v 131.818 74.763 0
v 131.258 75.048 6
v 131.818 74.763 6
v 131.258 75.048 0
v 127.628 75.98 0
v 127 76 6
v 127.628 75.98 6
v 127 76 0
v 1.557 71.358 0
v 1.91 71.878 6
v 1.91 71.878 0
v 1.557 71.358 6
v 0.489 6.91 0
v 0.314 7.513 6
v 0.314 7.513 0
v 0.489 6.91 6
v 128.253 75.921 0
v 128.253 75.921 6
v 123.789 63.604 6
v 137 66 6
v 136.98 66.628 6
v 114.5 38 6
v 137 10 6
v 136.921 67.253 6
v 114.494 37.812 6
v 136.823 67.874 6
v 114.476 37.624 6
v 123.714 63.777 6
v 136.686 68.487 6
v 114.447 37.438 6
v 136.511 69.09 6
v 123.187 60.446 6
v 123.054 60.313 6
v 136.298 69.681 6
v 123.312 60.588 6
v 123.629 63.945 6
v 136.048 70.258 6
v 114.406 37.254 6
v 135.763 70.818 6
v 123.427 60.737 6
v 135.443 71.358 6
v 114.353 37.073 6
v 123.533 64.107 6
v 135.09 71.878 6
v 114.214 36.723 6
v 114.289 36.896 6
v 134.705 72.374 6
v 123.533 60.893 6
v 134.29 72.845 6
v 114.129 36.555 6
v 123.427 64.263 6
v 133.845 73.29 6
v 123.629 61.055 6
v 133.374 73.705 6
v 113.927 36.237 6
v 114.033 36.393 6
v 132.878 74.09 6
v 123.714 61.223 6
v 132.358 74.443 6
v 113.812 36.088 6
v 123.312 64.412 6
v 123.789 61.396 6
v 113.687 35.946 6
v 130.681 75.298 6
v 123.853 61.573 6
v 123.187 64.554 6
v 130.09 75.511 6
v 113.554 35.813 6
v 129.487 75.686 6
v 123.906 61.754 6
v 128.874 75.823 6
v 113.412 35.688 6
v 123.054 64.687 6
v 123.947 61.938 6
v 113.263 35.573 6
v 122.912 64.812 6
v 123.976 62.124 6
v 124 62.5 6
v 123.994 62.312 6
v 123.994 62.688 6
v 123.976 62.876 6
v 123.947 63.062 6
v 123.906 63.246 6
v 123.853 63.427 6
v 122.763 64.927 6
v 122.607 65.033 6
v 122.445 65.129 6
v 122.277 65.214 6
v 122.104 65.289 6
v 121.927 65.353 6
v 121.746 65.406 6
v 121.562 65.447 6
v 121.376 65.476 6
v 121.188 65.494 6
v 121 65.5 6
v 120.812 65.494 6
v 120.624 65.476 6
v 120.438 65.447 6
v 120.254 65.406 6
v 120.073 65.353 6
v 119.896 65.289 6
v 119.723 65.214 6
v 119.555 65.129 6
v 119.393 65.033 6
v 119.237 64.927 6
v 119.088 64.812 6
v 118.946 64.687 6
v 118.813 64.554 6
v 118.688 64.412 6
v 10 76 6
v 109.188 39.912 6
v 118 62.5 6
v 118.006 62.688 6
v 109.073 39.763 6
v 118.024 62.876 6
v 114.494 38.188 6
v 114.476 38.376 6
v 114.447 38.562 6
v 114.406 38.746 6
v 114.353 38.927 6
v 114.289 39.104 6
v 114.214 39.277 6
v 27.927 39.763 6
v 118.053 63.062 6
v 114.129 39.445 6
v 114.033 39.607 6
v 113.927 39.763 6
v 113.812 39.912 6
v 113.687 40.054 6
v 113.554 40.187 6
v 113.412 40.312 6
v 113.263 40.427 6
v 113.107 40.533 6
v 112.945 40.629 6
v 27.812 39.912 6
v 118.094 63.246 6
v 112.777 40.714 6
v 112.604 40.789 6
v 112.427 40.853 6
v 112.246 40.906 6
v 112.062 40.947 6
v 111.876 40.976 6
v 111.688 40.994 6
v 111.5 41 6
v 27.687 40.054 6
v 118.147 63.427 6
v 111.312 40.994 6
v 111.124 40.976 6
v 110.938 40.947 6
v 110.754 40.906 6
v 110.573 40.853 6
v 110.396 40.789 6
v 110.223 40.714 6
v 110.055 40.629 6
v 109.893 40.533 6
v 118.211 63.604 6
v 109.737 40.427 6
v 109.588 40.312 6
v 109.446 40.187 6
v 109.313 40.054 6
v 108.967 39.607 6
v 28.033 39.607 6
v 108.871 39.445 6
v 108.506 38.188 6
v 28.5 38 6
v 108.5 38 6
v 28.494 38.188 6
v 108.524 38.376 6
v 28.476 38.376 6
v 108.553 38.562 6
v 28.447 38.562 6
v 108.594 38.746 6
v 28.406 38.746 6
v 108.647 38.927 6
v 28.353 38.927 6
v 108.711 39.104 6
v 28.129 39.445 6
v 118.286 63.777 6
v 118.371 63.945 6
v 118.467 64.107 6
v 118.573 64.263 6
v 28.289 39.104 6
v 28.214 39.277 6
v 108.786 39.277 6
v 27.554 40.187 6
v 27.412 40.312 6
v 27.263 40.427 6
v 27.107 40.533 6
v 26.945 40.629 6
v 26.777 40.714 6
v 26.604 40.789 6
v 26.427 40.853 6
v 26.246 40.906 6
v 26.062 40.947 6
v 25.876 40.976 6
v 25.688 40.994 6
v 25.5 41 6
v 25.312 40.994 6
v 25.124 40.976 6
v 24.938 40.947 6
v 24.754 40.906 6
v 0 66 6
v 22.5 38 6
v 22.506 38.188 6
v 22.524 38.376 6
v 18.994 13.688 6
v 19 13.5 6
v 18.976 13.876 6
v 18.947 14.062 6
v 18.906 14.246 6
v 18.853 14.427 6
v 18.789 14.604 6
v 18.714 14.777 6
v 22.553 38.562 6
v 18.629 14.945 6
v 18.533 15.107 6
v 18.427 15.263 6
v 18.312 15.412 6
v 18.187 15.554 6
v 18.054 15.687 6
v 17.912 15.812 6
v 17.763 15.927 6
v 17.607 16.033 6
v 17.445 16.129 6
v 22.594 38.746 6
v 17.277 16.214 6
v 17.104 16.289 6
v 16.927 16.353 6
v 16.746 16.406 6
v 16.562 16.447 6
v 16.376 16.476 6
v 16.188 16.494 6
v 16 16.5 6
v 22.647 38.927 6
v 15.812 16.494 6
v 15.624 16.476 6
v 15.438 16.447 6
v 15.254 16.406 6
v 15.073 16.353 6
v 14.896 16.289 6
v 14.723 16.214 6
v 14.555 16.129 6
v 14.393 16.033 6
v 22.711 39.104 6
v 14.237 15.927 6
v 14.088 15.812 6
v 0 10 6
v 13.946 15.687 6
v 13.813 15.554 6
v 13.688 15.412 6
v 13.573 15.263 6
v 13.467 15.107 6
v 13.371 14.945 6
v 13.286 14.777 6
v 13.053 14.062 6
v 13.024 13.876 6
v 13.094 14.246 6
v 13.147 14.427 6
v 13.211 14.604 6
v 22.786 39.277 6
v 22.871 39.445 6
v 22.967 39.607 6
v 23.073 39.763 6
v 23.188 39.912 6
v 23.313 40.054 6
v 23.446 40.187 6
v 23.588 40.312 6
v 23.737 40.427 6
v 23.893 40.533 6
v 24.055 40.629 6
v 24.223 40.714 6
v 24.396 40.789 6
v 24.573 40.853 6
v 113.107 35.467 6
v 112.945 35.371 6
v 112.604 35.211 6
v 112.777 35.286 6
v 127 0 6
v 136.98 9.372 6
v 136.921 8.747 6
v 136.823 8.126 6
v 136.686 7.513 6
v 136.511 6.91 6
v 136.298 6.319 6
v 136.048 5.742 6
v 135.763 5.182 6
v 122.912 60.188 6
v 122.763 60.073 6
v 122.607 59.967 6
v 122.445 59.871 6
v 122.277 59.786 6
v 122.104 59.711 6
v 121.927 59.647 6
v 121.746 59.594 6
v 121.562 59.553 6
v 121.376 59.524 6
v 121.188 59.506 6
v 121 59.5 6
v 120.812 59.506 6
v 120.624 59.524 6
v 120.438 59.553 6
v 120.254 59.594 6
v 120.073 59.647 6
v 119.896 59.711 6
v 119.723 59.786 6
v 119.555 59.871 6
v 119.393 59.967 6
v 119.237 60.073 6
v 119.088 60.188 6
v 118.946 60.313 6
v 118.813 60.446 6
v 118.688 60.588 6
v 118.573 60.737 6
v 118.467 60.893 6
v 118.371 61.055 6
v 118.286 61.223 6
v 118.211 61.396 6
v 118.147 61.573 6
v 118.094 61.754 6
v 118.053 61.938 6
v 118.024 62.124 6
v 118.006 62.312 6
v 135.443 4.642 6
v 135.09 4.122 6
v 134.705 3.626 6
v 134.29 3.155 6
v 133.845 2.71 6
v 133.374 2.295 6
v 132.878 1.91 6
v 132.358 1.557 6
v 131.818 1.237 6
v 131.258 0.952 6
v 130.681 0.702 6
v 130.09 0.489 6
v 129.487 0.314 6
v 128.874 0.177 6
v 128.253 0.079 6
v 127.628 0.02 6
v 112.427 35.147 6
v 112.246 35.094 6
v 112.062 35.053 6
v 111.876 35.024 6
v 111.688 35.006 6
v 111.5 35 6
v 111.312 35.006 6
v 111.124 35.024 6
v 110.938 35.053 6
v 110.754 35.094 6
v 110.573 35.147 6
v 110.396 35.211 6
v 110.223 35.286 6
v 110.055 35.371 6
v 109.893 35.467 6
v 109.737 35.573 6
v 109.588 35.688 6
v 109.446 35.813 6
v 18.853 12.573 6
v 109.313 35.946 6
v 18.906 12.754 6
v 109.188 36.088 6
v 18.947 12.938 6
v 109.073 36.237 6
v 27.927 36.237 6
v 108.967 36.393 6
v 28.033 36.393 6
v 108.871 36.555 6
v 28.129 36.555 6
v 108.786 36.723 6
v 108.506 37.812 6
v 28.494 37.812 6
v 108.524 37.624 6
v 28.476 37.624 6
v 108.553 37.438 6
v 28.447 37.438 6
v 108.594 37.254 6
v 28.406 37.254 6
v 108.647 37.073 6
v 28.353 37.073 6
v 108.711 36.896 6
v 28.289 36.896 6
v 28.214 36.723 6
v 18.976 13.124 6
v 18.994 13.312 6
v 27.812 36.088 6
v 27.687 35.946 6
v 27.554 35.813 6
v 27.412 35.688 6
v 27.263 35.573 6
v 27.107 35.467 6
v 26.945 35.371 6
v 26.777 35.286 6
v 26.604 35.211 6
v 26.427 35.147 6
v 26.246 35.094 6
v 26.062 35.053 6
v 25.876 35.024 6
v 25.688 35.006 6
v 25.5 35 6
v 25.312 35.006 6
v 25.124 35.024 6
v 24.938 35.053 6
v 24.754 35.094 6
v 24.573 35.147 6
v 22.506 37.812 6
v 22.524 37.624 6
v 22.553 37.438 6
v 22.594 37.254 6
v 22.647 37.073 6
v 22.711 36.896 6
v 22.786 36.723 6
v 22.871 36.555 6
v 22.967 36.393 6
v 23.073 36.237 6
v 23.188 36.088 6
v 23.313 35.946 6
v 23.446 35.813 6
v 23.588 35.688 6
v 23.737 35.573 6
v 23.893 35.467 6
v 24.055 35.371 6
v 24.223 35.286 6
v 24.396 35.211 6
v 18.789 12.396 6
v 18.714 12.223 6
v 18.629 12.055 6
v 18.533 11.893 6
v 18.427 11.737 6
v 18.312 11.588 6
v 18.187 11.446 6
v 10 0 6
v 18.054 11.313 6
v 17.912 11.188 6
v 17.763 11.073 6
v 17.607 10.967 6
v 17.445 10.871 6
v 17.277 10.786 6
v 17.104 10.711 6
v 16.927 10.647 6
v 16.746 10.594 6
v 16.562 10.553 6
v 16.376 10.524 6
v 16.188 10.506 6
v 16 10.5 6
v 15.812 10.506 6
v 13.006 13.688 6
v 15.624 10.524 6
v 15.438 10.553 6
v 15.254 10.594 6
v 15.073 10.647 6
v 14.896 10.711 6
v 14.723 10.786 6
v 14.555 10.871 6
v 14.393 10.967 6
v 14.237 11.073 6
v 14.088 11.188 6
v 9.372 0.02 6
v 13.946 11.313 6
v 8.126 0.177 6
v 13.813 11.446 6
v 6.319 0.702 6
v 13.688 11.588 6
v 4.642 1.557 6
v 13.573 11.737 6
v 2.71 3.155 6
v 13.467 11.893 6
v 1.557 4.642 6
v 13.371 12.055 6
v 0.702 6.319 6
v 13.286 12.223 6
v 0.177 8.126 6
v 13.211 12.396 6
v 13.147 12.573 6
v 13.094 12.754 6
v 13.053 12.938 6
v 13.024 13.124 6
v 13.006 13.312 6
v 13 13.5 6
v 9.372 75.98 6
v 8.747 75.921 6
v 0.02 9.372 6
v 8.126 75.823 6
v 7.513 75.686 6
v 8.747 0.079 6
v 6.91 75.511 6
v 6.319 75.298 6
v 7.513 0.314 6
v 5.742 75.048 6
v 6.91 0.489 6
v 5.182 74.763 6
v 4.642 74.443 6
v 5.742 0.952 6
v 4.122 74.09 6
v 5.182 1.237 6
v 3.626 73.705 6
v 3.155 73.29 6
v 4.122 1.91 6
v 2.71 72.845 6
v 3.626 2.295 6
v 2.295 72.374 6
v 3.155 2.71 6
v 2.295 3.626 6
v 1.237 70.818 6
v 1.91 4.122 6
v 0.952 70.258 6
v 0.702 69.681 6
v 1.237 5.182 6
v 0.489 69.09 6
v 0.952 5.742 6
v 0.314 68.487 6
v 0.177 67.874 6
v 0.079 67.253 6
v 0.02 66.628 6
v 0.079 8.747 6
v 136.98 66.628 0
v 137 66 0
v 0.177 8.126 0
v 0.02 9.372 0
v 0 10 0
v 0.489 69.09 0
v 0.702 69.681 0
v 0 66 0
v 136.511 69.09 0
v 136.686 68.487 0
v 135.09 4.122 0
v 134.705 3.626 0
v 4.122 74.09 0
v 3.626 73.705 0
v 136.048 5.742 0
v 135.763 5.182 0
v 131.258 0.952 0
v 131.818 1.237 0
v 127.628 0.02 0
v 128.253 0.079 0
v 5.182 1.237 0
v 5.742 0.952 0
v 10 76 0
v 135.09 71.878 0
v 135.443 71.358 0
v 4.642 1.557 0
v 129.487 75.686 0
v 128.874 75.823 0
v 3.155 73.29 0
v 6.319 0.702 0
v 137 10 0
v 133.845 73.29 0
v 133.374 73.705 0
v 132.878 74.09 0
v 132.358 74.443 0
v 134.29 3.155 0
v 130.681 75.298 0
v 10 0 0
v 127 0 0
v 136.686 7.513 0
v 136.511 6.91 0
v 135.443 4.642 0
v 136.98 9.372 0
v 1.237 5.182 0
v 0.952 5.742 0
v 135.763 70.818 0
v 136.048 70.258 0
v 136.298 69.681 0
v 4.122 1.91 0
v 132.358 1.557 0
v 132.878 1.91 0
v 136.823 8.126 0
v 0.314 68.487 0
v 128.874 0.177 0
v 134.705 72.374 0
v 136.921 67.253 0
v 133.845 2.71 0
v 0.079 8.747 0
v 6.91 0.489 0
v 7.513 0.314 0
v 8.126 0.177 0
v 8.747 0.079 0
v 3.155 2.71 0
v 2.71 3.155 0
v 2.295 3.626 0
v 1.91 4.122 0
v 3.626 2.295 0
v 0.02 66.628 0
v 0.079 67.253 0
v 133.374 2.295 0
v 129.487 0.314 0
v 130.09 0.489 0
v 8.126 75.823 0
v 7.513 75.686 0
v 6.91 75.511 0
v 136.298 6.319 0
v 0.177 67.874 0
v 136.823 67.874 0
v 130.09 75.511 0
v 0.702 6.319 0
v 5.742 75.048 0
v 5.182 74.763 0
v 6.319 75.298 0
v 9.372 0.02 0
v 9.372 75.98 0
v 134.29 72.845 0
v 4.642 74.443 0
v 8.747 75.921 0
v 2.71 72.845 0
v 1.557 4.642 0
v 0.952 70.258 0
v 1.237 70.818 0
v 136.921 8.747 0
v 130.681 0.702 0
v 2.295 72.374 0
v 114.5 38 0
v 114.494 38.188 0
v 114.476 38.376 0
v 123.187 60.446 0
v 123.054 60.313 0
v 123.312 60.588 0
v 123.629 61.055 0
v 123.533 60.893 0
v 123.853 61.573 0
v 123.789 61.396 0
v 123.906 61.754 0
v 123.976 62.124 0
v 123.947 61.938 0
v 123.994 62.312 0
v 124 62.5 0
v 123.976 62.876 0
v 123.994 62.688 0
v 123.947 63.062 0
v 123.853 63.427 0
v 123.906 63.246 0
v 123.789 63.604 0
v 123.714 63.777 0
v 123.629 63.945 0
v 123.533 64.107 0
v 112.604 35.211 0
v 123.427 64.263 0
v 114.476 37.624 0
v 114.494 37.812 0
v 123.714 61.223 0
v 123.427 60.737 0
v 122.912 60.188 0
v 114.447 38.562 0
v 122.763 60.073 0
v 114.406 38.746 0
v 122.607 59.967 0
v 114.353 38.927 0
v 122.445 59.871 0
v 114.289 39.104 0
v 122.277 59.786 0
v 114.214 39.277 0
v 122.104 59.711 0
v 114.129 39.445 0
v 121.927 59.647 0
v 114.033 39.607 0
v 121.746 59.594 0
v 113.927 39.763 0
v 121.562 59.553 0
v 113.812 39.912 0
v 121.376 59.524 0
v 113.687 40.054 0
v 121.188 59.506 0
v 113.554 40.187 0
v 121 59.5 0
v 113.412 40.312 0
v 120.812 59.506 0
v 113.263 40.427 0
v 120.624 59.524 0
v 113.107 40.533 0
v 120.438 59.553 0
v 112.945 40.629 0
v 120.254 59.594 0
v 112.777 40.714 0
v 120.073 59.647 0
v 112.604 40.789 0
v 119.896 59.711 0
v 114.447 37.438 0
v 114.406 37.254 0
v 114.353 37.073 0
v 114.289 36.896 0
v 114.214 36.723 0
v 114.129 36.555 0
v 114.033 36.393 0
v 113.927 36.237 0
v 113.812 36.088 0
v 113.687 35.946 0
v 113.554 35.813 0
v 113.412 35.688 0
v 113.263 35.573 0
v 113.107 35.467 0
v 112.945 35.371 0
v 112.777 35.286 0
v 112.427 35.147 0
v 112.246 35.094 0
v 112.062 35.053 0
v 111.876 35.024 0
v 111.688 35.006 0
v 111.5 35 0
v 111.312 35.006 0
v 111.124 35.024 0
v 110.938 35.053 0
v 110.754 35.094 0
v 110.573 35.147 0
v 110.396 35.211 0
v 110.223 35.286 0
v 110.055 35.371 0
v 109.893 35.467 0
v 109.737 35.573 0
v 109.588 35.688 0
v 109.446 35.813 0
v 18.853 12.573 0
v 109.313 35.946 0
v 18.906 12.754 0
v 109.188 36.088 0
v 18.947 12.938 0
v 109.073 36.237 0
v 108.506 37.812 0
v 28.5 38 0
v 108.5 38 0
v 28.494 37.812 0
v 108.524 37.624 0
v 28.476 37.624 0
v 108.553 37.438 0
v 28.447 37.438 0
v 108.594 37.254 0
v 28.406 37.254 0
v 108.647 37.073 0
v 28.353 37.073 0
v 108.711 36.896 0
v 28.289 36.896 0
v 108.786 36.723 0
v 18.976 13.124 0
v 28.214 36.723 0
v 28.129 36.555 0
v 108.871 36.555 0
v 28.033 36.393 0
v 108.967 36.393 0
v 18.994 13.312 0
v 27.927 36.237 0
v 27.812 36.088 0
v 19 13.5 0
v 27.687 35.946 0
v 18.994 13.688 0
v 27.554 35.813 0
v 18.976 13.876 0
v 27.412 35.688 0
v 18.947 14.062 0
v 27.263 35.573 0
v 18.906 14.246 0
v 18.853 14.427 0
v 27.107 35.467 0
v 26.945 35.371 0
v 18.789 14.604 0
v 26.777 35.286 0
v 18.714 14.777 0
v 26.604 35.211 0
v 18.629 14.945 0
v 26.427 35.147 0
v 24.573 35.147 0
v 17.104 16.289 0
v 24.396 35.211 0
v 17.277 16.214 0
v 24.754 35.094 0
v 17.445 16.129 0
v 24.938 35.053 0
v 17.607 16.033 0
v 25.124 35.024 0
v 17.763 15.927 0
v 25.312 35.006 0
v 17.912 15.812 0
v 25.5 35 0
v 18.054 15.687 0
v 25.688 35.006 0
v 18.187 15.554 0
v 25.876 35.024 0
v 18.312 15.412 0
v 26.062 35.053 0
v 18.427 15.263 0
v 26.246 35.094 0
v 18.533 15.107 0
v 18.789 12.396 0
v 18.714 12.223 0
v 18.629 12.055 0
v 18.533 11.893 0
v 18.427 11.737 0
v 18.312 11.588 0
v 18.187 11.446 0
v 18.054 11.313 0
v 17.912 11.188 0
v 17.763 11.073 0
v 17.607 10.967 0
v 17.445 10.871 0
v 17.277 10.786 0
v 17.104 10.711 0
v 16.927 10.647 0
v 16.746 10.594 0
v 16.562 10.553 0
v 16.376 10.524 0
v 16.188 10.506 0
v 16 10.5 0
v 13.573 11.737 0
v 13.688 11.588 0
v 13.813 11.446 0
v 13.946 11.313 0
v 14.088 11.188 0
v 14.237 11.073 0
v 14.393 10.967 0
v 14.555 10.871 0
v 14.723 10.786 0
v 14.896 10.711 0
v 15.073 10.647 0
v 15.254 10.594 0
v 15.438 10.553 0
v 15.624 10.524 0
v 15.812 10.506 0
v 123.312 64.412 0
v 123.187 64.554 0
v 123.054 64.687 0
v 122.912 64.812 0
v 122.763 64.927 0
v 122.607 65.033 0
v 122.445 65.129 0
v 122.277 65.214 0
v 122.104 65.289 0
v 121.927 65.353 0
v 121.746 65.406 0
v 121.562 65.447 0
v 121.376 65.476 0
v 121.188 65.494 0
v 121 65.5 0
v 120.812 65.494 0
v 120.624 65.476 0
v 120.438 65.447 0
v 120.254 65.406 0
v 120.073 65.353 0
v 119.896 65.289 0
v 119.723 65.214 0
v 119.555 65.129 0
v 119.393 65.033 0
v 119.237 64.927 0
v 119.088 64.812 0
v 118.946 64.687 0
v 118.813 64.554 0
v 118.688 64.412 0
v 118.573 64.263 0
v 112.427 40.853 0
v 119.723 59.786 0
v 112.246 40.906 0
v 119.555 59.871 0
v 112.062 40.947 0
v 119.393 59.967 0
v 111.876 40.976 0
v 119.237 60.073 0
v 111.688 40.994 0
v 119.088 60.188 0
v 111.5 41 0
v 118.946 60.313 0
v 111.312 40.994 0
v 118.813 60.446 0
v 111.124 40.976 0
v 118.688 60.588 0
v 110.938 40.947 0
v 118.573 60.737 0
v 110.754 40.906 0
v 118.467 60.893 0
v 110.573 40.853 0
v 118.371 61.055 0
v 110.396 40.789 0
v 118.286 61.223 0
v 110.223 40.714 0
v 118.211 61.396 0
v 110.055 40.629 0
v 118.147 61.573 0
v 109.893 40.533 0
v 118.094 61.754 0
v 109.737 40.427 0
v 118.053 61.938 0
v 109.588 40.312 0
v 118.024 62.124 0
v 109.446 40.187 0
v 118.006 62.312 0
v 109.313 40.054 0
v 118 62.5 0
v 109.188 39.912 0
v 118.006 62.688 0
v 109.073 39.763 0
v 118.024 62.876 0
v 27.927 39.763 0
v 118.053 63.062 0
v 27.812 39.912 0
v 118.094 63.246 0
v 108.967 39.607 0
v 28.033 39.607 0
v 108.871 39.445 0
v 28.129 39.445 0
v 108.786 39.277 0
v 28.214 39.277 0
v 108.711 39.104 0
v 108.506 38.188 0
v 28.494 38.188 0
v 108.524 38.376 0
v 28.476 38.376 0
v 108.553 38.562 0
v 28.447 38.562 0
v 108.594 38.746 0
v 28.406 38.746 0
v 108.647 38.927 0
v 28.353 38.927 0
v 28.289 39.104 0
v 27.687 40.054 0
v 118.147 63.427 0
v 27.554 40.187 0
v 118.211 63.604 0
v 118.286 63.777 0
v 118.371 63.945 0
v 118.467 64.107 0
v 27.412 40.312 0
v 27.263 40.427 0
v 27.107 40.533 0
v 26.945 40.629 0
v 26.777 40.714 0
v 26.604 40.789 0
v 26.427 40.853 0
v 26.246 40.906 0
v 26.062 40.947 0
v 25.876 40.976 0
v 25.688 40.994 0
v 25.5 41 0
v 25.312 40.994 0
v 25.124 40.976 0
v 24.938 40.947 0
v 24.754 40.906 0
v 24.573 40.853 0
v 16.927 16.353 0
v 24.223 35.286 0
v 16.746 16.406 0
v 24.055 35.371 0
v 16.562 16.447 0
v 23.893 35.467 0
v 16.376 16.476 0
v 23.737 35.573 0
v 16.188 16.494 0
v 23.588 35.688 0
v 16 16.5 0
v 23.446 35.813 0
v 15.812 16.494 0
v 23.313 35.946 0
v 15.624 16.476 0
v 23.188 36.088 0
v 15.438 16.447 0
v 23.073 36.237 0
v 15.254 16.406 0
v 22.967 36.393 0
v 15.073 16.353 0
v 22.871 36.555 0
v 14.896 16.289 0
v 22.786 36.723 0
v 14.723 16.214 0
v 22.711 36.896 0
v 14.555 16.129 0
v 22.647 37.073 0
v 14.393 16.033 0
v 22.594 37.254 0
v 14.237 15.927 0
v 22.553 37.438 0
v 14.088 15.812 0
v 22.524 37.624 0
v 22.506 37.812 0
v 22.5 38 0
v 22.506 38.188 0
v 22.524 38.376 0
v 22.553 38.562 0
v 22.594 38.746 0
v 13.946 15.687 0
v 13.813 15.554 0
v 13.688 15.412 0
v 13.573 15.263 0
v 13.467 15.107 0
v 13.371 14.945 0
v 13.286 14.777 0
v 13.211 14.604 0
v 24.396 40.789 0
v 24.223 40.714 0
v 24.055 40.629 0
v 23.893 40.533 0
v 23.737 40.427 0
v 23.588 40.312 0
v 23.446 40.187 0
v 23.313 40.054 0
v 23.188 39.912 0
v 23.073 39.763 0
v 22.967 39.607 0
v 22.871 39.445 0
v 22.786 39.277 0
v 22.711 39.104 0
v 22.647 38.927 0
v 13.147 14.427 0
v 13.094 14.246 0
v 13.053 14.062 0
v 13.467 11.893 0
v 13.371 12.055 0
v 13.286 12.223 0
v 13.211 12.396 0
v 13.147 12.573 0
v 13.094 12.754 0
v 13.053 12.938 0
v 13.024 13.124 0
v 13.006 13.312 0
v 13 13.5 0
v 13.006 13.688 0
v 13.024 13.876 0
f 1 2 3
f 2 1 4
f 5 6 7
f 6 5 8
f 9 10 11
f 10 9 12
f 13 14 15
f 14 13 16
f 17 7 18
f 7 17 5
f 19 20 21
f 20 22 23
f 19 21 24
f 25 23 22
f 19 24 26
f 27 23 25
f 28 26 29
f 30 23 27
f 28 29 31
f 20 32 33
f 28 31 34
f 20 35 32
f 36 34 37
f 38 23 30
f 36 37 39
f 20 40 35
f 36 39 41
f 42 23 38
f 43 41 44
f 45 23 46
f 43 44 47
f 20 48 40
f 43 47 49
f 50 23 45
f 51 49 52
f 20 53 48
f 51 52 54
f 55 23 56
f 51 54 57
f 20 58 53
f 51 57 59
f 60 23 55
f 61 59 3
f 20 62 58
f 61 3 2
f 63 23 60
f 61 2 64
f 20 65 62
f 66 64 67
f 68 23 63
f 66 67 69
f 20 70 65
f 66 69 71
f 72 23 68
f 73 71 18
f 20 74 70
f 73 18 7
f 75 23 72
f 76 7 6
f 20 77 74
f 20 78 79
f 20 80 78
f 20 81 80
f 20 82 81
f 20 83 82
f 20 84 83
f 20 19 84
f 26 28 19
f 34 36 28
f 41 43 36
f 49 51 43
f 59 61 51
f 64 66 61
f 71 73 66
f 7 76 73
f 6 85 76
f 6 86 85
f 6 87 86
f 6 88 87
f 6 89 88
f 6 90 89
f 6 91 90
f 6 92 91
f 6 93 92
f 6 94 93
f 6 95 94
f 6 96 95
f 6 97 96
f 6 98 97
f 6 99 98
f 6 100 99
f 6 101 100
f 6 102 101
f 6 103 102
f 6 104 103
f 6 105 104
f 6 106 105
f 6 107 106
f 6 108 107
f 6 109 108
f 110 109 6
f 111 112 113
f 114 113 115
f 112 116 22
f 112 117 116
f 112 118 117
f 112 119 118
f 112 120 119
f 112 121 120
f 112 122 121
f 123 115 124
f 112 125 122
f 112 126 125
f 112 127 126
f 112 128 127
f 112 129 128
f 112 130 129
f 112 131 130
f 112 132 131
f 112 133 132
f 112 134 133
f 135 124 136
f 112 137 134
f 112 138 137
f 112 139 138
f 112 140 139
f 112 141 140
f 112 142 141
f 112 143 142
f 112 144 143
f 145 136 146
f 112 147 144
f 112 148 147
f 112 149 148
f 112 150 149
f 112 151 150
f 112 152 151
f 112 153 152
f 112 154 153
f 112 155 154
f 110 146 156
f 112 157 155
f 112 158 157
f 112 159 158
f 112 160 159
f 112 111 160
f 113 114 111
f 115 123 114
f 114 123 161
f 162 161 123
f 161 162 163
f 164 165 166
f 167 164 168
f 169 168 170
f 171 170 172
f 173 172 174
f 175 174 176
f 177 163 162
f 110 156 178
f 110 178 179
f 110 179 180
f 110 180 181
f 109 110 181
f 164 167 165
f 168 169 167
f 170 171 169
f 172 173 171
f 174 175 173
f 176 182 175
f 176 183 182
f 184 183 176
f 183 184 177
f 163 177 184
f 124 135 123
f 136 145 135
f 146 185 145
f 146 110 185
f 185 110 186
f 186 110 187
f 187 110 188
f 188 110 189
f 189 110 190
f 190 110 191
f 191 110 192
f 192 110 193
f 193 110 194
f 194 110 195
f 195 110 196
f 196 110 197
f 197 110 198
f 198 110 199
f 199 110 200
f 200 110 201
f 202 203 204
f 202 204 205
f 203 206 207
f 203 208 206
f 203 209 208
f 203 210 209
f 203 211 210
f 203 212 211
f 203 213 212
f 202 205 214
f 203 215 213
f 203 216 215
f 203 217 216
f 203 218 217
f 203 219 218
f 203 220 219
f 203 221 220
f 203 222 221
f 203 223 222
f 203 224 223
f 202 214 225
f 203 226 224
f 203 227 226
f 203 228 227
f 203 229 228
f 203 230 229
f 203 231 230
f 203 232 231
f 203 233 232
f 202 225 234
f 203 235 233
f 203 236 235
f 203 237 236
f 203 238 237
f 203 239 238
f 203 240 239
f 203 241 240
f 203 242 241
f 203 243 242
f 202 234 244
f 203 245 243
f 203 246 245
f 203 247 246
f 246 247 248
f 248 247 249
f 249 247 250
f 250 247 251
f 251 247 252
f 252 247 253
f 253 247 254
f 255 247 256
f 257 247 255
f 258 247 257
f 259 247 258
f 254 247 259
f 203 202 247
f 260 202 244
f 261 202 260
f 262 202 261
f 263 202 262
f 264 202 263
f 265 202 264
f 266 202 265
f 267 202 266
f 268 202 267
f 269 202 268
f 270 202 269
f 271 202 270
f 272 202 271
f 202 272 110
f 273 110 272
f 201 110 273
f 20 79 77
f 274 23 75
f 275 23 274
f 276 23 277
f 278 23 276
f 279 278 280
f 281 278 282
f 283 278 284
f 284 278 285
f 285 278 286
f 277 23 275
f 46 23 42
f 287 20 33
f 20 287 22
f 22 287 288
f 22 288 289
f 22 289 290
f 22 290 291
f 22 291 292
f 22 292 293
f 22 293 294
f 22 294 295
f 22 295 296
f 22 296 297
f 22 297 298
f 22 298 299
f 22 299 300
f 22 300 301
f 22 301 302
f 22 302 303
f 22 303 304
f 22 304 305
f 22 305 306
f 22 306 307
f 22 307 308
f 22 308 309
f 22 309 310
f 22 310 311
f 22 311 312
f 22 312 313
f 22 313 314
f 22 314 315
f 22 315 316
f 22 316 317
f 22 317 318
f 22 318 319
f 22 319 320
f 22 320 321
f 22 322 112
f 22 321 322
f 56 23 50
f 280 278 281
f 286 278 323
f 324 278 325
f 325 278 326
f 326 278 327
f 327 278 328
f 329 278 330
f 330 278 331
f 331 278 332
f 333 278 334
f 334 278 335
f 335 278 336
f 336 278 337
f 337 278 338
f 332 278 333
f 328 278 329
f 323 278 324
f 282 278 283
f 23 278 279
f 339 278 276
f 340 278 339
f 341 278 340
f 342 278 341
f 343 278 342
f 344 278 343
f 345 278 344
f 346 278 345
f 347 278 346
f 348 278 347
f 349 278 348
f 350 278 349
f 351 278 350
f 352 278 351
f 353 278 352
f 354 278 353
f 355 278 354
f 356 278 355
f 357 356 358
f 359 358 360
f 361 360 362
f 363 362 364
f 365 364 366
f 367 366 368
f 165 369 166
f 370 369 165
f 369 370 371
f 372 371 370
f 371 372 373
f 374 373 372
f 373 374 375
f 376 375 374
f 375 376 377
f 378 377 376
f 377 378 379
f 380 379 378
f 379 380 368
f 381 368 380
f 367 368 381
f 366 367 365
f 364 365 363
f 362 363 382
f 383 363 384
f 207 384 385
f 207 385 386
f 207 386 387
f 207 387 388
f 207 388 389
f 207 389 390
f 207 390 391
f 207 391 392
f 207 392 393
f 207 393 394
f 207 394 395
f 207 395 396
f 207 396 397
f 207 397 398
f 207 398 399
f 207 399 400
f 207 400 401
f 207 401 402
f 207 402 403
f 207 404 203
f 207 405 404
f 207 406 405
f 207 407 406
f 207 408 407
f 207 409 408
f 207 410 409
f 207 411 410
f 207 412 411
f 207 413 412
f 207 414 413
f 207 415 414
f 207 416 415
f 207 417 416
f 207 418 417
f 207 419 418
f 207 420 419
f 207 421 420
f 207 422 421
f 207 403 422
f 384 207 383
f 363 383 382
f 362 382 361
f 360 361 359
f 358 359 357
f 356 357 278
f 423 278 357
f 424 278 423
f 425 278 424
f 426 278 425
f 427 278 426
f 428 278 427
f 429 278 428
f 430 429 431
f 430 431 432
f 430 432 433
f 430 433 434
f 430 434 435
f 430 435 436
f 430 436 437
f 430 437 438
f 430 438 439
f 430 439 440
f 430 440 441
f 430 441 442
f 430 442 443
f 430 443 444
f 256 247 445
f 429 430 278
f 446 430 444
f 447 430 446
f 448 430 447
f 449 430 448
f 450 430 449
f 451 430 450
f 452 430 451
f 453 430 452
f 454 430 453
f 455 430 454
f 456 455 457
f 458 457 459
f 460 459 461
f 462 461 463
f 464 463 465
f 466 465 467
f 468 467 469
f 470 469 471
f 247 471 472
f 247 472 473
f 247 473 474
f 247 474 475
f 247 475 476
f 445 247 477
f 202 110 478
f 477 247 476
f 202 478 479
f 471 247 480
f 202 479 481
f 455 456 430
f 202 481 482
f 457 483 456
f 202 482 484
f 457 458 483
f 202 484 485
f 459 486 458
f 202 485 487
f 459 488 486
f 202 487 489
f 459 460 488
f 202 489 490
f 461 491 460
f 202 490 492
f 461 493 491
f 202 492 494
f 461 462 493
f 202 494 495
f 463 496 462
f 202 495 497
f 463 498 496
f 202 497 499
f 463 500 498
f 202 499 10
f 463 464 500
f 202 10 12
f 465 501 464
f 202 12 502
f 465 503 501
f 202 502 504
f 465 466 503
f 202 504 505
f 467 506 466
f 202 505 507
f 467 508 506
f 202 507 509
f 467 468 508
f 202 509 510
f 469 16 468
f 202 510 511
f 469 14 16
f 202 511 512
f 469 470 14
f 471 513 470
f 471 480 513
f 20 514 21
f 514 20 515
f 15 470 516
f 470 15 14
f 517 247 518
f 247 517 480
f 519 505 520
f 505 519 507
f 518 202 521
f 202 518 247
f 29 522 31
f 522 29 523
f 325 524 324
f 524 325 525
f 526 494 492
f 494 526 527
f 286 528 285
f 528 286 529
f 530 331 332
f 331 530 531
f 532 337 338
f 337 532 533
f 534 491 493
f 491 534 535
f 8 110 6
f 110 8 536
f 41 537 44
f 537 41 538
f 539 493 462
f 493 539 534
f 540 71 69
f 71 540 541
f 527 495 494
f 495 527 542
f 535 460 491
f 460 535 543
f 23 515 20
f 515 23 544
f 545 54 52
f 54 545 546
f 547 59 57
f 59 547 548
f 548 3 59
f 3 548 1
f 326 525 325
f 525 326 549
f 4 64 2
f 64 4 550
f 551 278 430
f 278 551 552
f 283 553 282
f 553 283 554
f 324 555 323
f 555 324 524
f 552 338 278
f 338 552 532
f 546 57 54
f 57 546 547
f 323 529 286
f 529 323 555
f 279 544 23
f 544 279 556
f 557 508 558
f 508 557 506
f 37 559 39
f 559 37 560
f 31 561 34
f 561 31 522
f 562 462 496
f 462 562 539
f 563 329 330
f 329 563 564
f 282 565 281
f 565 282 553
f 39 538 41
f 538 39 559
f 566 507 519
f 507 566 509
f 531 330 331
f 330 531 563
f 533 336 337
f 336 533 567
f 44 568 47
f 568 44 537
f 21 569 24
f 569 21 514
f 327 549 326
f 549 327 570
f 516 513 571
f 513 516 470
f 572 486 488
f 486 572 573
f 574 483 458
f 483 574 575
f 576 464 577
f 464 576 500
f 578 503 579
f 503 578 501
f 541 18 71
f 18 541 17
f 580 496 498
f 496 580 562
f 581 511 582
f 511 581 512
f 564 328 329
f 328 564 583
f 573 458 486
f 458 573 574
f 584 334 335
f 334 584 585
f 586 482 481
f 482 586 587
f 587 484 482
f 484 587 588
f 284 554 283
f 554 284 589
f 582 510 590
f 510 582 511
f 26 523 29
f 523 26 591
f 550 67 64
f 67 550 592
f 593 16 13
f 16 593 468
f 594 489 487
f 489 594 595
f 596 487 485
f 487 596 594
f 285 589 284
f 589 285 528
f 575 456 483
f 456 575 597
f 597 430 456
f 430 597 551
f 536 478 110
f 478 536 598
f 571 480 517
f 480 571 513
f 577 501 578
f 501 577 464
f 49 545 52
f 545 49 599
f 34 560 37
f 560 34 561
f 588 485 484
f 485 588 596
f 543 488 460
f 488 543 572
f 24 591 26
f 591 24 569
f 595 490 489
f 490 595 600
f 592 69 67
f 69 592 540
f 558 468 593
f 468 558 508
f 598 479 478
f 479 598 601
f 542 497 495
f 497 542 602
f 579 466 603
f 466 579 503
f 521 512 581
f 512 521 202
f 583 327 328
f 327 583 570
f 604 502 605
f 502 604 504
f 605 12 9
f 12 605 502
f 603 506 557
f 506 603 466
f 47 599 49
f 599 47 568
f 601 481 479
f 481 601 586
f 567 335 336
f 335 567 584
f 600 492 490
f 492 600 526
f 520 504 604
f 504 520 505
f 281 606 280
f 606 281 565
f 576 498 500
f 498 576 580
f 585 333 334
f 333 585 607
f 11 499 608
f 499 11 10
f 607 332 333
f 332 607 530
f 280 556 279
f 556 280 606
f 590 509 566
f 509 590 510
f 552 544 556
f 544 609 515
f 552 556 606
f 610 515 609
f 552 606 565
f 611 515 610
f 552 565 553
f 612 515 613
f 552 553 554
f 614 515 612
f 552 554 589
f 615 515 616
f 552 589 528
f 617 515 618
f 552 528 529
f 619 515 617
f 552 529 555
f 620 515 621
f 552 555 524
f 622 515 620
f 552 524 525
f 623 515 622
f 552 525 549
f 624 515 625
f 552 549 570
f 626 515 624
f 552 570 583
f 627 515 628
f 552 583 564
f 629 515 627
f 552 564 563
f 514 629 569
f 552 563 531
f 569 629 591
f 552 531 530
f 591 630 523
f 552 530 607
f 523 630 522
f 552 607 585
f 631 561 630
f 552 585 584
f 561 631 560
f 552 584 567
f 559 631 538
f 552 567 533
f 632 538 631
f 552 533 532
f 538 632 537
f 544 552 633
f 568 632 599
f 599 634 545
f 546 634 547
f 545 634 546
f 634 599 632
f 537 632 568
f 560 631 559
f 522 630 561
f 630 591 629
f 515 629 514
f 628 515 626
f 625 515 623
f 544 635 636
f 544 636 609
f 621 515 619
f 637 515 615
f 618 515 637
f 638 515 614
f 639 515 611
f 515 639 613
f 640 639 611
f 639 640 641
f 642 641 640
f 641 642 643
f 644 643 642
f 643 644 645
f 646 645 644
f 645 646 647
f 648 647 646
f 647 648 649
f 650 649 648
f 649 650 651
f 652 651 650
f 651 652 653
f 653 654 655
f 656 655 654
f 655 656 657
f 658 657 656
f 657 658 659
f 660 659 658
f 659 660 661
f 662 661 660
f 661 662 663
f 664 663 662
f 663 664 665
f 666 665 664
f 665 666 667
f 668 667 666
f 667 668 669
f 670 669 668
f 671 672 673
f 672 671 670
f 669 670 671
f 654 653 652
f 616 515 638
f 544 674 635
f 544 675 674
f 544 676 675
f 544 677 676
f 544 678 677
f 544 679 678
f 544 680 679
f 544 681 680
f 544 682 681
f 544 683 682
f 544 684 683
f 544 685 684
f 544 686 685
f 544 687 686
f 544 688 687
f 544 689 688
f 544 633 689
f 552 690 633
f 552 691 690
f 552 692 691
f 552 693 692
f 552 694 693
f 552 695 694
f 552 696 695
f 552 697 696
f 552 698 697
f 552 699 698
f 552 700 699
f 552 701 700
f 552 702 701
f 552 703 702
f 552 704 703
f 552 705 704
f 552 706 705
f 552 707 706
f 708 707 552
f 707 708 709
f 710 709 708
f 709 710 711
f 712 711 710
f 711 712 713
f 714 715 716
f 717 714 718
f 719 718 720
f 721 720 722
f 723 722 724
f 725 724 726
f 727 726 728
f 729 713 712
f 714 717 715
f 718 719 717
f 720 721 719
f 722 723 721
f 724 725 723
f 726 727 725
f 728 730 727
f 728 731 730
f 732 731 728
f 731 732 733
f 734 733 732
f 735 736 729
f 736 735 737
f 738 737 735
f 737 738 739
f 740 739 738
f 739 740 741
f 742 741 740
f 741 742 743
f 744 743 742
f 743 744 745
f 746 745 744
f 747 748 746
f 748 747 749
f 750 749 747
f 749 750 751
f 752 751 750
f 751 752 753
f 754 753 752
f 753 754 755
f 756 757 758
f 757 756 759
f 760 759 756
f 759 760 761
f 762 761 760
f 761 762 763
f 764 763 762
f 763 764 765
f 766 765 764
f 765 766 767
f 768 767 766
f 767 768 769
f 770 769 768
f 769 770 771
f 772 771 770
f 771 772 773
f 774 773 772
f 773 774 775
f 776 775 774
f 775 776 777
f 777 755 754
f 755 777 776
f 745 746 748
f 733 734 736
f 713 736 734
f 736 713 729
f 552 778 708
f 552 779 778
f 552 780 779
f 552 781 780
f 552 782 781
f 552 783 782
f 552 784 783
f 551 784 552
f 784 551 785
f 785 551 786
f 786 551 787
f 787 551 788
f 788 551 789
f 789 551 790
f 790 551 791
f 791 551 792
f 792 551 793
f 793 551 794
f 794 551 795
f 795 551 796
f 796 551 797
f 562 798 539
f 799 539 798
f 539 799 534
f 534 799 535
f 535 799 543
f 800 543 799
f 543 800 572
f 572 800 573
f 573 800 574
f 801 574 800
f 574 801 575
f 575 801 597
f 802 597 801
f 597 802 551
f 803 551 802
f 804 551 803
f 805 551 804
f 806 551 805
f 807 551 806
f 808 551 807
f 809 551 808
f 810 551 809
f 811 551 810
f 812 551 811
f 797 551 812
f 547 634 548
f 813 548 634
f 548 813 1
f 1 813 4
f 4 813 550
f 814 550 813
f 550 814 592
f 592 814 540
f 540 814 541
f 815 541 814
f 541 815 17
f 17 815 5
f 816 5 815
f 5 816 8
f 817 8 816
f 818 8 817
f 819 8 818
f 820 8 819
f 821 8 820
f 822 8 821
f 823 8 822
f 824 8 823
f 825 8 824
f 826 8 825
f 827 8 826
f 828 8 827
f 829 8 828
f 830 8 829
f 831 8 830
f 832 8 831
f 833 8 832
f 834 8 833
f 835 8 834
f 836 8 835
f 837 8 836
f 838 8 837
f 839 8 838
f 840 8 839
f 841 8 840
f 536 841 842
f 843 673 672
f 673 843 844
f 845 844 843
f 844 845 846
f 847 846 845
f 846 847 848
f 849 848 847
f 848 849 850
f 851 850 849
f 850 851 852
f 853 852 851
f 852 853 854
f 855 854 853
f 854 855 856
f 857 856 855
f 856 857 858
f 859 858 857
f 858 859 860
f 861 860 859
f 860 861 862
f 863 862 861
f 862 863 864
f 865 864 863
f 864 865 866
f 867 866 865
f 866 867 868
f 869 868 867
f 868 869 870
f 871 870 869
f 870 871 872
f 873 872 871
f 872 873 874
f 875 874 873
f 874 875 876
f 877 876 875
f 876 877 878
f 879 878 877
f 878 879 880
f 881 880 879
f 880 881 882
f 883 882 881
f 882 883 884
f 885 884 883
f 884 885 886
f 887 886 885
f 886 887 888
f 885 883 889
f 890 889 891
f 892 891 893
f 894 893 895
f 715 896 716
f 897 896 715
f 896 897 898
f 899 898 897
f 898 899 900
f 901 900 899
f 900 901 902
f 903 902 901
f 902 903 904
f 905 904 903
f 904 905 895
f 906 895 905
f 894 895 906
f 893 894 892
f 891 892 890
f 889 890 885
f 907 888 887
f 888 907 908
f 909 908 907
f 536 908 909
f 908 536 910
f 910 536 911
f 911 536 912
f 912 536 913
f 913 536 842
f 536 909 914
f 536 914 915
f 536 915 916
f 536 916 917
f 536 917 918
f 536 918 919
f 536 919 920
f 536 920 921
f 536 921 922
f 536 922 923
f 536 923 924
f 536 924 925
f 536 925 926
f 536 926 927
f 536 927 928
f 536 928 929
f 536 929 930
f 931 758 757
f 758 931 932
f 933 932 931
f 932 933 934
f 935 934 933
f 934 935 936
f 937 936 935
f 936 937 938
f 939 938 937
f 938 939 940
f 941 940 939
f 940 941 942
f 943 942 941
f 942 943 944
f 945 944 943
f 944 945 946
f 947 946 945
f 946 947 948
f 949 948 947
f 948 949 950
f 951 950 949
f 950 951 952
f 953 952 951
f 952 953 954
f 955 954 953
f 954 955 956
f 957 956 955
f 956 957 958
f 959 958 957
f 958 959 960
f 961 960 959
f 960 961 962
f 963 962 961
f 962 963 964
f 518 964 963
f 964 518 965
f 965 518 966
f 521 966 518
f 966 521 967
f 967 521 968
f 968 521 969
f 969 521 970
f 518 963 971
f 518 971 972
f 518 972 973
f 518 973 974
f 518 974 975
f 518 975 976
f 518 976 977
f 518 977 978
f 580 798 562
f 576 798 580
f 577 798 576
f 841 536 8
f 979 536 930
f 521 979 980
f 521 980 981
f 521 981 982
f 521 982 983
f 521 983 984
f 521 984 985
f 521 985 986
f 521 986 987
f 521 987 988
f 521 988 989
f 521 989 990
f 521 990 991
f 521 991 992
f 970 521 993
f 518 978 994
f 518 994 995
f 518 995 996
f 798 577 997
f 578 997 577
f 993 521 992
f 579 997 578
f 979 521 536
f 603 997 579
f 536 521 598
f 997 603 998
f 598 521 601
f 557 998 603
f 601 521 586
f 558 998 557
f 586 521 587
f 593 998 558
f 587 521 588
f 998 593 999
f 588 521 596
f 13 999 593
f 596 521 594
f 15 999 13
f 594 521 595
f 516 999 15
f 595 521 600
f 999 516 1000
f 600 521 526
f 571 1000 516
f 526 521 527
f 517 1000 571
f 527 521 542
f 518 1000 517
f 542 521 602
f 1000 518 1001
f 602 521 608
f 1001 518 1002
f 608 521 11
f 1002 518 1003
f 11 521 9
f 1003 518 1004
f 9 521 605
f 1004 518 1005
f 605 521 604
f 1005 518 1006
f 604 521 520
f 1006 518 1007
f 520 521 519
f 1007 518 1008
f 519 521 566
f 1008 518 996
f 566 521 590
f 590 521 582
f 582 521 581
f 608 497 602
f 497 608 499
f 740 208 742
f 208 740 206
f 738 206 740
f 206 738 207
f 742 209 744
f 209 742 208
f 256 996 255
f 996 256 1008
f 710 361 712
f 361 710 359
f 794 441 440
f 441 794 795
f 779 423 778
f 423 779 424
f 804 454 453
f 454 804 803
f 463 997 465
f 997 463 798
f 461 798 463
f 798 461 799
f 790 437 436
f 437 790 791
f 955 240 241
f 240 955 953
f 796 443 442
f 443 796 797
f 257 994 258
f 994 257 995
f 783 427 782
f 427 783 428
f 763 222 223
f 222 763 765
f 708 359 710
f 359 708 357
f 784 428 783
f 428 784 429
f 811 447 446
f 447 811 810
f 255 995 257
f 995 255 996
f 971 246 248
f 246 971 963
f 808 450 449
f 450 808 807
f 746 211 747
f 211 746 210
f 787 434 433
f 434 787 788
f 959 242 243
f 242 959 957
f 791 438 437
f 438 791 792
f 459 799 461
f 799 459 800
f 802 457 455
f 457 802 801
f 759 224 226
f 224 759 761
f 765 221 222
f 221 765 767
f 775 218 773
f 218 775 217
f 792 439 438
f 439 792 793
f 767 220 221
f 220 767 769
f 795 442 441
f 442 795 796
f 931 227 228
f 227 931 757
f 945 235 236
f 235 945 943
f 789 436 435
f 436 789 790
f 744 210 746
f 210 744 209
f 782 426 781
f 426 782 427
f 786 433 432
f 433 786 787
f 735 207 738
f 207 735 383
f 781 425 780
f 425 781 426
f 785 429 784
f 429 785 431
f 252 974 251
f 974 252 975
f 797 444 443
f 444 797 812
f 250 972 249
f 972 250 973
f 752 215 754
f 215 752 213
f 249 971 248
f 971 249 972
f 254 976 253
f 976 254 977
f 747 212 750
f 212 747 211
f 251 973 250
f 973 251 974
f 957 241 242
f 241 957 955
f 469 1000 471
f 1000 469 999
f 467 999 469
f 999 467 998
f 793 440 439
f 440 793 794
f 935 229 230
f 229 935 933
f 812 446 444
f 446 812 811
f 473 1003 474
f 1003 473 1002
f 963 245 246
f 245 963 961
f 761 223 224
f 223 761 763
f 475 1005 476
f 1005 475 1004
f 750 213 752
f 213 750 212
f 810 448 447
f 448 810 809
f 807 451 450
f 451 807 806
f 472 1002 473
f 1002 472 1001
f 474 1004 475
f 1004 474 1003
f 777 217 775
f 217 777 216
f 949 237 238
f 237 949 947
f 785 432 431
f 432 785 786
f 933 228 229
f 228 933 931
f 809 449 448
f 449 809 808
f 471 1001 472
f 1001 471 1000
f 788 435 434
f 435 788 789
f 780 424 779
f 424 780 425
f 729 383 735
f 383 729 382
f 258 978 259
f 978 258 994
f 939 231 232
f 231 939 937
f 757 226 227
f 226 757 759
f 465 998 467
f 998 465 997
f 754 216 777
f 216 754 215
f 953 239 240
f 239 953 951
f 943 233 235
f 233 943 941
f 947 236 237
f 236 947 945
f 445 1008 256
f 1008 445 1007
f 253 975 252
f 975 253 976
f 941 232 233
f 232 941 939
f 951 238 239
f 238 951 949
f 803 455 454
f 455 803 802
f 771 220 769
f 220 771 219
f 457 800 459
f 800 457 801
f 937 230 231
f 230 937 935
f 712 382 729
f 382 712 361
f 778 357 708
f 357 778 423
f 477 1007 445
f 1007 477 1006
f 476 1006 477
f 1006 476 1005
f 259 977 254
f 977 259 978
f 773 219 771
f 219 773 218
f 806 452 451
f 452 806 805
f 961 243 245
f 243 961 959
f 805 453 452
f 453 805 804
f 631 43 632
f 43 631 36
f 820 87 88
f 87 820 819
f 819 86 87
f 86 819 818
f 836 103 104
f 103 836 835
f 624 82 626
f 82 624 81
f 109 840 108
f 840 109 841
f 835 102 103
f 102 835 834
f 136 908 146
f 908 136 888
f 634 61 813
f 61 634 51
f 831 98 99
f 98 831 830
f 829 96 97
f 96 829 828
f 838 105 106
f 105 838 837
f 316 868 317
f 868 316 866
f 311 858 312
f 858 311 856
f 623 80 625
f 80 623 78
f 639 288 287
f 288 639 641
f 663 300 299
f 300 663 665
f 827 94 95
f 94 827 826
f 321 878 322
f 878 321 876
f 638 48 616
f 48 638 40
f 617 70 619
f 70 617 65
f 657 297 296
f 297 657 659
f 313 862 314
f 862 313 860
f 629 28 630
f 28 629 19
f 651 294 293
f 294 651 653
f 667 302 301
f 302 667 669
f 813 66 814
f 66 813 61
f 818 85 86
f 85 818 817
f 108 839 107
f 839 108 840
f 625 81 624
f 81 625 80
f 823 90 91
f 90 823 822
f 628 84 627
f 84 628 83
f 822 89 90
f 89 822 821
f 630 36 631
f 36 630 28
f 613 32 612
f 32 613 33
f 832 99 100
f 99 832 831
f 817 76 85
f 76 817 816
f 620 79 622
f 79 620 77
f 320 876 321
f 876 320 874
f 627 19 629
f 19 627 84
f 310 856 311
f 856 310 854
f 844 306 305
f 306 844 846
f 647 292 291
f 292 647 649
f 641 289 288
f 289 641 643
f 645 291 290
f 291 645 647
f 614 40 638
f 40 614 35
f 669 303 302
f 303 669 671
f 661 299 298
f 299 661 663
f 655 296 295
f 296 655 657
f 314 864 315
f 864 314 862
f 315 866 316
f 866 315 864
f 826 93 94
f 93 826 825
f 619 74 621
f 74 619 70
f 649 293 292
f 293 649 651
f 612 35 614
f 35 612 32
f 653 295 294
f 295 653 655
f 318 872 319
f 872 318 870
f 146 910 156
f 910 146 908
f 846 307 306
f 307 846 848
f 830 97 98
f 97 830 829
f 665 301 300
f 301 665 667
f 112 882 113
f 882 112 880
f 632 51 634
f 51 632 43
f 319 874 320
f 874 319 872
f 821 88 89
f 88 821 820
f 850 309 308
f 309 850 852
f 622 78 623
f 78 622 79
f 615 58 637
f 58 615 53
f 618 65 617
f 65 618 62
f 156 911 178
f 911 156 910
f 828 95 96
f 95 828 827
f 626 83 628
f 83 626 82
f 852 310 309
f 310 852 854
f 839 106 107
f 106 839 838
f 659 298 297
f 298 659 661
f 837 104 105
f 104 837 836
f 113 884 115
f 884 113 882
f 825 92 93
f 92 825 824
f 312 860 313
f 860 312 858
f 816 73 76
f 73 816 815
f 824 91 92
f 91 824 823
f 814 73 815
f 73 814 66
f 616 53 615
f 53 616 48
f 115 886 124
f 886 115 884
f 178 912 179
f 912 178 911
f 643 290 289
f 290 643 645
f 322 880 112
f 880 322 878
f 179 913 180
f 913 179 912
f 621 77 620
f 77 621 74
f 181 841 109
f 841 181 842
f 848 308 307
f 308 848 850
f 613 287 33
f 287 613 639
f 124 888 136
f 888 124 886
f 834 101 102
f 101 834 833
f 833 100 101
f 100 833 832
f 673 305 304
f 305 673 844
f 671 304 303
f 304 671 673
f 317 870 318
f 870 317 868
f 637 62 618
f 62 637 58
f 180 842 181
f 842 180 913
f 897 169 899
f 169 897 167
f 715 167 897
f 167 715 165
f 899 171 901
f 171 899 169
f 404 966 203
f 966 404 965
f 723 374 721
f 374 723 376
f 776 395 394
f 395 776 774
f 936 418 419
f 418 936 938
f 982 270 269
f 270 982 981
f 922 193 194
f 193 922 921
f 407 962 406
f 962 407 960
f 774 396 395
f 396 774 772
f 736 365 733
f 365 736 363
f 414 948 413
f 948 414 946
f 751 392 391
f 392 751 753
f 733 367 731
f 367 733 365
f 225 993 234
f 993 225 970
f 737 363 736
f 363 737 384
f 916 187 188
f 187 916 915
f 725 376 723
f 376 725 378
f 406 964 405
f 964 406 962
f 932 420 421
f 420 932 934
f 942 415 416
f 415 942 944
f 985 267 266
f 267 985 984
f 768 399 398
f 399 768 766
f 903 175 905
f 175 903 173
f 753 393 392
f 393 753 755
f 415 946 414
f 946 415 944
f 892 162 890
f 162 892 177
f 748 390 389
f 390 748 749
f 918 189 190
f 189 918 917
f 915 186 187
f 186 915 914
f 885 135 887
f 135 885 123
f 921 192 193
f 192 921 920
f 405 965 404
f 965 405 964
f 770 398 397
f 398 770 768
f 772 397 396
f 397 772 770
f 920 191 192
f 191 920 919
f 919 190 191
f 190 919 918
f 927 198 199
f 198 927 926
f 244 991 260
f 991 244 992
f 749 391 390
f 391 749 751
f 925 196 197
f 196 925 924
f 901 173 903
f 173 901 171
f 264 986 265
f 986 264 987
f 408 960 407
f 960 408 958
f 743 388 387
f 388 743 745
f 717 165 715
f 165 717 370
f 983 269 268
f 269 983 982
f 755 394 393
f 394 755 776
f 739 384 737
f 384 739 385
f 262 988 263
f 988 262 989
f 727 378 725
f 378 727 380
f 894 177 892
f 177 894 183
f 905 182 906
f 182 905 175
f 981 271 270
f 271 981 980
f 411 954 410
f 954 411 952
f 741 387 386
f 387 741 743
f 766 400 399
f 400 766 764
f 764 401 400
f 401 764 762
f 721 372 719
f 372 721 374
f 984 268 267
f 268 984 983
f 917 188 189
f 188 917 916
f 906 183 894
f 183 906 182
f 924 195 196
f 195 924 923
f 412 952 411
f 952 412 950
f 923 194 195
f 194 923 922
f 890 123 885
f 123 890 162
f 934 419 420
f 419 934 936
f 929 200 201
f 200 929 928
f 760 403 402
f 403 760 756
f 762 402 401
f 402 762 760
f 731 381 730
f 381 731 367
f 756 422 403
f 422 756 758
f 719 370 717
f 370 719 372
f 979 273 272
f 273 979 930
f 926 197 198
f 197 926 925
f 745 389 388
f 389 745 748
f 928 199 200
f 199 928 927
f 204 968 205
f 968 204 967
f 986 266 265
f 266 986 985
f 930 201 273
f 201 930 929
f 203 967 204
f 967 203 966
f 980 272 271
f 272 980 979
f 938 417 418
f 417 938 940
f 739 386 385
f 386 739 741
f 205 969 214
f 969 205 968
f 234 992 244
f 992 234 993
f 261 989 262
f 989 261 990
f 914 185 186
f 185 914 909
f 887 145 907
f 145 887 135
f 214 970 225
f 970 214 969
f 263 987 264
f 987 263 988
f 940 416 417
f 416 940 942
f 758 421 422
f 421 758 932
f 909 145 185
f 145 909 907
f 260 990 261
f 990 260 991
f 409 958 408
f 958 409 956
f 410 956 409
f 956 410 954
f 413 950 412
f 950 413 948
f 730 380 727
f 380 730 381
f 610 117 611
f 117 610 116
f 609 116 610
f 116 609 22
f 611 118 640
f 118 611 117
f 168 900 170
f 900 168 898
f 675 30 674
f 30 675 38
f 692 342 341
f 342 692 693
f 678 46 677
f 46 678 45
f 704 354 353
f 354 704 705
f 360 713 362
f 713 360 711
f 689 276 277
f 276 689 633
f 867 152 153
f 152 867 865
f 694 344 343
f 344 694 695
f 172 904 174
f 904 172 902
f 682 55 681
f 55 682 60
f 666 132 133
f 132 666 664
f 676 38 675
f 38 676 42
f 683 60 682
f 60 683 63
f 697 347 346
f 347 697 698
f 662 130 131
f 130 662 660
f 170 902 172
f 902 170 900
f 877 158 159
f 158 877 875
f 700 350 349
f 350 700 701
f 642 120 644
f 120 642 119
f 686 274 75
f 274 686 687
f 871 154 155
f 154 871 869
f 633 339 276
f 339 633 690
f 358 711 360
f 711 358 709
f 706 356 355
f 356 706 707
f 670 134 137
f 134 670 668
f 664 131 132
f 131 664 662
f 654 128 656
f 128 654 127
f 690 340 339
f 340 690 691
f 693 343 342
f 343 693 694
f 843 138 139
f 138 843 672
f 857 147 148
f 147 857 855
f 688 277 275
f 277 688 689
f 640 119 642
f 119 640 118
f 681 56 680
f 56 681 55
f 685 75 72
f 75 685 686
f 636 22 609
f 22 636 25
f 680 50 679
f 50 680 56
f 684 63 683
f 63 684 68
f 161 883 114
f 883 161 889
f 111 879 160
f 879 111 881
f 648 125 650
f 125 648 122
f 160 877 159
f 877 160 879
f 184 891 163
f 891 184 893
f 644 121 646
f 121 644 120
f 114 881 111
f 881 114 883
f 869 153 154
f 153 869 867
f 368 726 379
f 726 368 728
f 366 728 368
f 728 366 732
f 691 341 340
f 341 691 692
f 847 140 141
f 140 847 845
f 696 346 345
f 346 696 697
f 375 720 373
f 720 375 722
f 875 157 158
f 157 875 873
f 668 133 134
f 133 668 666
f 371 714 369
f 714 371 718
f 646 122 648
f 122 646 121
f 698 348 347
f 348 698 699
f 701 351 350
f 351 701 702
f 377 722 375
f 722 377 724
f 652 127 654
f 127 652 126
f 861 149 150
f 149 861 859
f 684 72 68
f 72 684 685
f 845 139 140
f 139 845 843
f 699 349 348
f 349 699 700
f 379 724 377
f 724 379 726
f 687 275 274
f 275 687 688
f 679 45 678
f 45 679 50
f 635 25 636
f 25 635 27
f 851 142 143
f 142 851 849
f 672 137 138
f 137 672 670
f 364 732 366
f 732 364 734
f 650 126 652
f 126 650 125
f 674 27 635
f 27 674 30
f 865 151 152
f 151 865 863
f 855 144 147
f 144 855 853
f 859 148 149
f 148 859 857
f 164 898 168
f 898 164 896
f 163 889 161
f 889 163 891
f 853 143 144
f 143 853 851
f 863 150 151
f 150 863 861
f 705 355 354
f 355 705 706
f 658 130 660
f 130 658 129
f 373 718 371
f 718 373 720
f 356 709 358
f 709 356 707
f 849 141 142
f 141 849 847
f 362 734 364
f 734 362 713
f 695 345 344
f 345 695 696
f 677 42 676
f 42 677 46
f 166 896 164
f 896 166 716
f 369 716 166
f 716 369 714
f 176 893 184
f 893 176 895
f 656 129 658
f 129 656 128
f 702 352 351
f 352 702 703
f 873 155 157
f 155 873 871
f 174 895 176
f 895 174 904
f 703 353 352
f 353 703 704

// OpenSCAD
/**

Spacer for electrical backbox

Licenced as Creative Commons Attribution Non Commercial 3.0
See https://creativecommons.org/licenses/by-nc/3.0/

Specifically you may not sell the design or products using the design.
You're welcome to use the design to build things for your own use :)

**/

x = 137;
y = 76;
z = 6;
r = 10;

hole_x = 16;
hole_y = 13.5;
holes = 6;

difference() {
    rounded_cube([x, y, z], r=10);
    
    translate([hole_x, hole_y, 0]) { hole(); }
    translate([x-hole_x, y-hole_y, 0]) { hole(); }
    
    indent = 25.5;
    
    // Holes on the y axis centre line
    translate([indent, y/2, 0]) { hole(); }
    translate([x - indent, y/2, 0]) { hole(); }    
}

module hole() {
    cylinder(h=z, d=holes, $fn=100);
}

module rounded_cube(s, r=10) {
  translate([r, r])
  minkowski() {
    cube([s[0]-(2*r), s[1]-(2*r), s[2]/2]);
    cylinder(r=r, h=(s[2]/2), $fn=100);
  }
}
